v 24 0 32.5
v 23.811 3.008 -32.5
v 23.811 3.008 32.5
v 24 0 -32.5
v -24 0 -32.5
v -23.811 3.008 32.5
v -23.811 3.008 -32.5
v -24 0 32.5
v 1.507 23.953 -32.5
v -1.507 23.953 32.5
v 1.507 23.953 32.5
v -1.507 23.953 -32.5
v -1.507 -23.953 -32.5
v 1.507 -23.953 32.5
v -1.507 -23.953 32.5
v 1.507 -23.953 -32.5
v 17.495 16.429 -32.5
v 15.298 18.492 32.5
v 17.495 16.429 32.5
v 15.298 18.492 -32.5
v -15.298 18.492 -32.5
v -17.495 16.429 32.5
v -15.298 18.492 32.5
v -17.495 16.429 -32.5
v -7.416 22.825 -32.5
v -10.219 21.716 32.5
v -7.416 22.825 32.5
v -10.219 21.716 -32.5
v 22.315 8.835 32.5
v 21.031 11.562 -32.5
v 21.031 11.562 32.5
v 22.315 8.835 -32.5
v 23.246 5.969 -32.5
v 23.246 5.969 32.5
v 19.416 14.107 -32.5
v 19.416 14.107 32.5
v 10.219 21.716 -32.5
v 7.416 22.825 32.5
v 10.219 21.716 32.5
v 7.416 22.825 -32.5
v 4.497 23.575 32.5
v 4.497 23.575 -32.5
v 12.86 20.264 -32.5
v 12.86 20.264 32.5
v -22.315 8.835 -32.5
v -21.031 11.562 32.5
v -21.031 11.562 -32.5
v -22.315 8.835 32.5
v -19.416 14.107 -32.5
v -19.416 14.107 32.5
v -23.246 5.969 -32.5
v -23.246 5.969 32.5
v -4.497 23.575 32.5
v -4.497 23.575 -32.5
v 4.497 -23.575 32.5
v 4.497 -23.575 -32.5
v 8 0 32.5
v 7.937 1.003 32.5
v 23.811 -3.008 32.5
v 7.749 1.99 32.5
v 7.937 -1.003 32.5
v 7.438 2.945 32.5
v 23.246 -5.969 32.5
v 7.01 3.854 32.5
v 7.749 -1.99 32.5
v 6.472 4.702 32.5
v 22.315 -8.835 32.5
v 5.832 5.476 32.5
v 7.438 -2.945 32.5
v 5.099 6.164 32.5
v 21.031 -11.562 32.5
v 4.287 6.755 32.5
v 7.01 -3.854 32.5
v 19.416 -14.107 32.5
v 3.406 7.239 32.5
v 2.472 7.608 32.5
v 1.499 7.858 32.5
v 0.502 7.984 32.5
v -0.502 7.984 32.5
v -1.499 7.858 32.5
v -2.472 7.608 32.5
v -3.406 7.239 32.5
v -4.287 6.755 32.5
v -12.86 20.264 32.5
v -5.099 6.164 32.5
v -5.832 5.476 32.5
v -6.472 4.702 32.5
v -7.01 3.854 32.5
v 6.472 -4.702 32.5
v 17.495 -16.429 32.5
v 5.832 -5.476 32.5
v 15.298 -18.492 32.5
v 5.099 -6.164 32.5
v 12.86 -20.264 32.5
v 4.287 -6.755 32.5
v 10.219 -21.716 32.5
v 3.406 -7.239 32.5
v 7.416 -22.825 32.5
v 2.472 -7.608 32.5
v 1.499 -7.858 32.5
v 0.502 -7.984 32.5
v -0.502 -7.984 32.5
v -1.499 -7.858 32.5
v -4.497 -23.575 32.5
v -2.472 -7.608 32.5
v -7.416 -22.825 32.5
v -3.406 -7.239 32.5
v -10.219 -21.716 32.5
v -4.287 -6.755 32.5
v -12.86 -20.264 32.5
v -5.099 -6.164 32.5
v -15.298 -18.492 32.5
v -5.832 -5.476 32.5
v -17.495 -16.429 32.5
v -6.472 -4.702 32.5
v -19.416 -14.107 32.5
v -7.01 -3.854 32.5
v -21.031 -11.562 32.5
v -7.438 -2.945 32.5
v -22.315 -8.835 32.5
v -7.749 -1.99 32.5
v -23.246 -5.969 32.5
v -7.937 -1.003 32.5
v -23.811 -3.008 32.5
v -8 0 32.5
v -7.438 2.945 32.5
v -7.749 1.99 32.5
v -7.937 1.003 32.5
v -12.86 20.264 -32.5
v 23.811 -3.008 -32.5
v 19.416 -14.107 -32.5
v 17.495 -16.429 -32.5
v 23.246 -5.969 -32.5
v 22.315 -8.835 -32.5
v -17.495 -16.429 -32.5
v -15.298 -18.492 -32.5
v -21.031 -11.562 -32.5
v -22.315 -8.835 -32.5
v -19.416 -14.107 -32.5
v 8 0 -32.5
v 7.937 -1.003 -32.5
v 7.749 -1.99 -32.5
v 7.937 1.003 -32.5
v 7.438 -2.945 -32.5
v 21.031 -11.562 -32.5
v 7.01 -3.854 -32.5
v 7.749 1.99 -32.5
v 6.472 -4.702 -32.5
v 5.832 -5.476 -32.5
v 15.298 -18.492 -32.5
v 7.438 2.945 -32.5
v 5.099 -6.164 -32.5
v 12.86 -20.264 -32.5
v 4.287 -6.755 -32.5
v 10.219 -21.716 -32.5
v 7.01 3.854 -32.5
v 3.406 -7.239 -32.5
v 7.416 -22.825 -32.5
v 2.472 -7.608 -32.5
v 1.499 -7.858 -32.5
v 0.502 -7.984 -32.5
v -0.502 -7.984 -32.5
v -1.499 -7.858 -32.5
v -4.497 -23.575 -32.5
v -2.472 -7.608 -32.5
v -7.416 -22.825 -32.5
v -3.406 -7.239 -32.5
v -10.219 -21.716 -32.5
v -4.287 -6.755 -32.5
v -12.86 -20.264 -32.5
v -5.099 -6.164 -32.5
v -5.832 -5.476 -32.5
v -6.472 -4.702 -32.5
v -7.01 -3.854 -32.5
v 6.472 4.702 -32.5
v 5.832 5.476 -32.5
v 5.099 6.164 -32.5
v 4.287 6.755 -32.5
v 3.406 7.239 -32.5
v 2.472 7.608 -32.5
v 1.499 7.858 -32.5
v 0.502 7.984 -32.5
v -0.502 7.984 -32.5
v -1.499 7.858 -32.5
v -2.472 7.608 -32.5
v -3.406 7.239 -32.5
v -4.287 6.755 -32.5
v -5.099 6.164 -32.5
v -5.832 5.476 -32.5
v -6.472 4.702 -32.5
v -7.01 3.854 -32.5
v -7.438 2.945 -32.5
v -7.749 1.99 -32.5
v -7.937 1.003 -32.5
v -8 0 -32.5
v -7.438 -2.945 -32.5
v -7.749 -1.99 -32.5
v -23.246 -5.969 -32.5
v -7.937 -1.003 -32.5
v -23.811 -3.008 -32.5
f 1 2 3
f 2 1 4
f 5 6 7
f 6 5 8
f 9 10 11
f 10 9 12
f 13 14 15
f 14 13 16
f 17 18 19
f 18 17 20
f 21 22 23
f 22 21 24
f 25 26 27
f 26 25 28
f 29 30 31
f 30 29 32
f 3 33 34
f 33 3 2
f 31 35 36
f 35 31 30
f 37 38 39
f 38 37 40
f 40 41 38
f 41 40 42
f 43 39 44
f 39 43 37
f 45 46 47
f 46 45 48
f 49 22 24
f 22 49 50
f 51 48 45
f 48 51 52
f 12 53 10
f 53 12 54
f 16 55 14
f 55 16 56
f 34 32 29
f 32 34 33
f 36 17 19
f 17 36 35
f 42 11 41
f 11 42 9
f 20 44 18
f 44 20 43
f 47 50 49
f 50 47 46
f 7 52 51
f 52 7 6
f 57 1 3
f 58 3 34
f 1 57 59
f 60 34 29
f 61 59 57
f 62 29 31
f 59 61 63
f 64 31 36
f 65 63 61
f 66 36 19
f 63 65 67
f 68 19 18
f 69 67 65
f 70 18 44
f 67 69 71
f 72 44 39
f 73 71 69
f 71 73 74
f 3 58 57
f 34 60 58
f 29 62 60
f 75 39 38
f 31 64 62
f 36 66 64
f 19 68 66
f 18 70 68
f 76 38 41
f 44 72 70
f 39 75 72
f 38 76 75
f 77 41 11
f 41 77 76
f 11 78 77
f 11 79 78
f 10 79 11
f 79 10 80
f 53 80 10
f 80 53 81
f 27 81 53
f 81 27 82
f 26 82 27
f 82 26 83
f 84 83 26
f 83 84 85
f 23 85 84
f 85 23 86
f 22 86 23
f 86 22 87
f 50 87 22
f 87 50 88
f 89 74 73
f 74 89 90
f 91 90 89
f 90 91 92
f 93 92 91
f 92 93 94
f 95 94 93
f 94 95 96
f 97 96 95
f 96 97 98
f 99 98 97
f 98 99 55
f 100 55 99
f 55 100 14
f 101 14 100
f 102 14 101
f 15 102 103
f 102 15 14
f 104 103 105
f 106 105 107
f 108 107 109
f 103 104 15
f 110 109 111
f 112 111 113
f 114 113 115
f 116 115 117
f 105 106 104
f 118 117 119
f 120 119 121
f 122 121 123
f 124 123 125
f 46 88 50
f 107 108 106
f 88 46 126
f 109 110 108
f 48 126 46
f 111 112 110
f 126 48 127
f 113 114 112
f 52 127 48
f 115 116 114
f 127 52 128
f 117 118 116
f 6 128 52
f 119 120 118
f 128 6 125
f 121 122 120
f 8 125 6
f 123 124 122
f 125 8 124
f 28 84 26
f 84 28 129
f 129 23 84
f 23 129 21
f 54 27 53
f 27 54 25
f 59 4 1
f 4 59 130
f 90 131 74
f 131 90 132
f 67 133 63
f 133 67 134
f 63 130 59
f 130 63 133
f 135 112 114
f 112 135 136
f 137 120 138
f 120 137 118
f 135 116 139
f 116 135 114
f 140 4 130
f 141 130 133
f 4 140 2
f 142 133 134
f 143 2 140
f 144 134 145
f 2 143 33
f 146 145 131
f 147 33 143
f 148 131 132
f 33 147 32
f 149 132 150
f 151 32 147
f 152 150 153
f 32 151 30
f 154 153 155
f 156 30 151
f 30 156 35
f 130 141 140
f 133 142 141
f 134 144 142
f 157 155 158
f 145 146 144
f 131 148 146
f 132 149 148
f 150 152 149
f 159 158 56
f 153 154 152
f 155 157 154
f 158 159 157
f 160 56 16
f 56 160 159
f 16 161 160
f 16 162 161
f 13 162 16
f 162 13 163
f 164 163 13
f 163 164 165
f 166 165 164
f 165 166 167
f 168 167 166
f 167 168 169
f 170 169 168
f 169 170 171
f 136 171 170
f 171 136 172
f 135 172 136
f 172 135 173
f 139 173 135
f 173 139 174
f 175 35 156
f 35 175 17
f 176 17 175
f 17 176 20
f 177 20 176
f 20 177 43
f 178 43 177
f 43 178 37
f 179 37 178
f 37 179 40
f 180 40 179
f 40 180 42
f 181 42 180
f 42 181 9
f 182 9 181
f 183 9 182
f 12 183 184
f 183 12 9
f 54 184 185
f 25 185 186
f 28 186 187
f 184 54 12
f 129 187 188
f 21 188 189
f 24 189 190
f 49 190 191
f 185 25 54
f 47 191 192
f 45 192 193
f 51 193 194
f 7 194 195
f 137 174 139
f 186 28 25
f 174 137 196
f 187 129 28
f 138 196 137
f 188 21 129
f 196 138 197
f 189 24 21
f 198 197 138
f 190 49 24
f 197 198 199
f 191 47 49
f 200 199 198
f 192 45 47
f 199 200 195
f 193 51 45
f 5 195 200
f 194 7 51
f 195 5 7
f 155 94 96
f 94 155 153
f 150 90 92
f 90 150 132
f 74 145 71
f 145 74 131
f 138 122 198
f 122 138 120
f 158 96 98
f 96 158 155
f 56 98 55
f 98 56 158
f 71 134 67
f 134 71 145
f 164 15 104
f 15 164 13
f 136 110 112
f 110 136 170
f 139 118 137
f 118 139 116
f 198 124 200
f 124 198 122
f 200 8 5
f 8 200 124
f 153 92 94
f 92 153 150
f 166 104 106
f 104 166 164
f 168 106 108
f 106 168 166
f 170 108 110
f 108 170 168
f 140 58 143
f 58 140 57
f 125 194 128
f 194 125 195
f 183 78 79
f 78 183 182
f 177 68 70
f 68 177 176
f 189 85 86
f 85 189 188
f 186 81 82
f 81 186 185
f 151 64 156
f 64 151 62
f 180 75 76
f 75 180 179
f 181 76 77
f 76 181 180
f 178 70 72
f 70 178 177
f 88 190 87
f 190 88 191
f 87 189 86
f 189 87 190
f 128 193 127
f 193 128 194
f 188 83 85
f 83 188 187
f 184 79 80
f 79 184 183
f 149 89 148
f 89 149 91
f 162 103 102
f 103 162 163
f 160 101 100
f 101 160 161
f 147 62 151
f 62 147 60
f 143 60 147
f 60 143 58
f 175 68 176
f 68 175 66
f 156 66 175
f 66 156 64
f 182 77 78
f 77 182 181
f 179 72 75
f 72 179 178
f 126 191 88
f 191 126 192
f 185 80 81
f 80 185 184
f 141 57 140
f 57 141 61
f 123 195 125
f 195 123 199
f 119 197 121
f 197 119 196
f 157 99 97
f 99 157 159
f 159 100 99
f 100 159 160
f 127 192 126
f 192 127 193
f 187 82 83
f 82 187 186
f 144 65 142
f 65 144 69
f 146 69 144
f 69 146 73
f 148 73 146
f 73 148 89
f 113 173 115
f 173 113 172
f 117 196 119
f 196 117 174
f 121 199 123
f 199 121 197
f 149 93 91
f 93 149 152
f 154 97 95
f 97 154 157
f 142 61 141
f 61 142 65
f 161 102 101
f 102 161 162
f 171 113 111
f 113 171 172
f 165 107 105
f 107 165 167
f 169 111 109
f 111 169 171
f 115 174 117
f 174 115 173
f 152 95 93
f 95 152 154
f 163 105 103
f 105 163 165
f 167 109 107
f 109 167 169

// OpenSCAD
$fn = 50;


difference() {
	union() {
		translate(v = [0, 0, -32.5000000000]) {
			cylinder(h = 65, r = 24.0000000000);
		}
	}
	union() {
		translate(v = [0, 0, -100.0000000000]) {
			cylinder(h = 200, r = 8);
		}
	}
}
